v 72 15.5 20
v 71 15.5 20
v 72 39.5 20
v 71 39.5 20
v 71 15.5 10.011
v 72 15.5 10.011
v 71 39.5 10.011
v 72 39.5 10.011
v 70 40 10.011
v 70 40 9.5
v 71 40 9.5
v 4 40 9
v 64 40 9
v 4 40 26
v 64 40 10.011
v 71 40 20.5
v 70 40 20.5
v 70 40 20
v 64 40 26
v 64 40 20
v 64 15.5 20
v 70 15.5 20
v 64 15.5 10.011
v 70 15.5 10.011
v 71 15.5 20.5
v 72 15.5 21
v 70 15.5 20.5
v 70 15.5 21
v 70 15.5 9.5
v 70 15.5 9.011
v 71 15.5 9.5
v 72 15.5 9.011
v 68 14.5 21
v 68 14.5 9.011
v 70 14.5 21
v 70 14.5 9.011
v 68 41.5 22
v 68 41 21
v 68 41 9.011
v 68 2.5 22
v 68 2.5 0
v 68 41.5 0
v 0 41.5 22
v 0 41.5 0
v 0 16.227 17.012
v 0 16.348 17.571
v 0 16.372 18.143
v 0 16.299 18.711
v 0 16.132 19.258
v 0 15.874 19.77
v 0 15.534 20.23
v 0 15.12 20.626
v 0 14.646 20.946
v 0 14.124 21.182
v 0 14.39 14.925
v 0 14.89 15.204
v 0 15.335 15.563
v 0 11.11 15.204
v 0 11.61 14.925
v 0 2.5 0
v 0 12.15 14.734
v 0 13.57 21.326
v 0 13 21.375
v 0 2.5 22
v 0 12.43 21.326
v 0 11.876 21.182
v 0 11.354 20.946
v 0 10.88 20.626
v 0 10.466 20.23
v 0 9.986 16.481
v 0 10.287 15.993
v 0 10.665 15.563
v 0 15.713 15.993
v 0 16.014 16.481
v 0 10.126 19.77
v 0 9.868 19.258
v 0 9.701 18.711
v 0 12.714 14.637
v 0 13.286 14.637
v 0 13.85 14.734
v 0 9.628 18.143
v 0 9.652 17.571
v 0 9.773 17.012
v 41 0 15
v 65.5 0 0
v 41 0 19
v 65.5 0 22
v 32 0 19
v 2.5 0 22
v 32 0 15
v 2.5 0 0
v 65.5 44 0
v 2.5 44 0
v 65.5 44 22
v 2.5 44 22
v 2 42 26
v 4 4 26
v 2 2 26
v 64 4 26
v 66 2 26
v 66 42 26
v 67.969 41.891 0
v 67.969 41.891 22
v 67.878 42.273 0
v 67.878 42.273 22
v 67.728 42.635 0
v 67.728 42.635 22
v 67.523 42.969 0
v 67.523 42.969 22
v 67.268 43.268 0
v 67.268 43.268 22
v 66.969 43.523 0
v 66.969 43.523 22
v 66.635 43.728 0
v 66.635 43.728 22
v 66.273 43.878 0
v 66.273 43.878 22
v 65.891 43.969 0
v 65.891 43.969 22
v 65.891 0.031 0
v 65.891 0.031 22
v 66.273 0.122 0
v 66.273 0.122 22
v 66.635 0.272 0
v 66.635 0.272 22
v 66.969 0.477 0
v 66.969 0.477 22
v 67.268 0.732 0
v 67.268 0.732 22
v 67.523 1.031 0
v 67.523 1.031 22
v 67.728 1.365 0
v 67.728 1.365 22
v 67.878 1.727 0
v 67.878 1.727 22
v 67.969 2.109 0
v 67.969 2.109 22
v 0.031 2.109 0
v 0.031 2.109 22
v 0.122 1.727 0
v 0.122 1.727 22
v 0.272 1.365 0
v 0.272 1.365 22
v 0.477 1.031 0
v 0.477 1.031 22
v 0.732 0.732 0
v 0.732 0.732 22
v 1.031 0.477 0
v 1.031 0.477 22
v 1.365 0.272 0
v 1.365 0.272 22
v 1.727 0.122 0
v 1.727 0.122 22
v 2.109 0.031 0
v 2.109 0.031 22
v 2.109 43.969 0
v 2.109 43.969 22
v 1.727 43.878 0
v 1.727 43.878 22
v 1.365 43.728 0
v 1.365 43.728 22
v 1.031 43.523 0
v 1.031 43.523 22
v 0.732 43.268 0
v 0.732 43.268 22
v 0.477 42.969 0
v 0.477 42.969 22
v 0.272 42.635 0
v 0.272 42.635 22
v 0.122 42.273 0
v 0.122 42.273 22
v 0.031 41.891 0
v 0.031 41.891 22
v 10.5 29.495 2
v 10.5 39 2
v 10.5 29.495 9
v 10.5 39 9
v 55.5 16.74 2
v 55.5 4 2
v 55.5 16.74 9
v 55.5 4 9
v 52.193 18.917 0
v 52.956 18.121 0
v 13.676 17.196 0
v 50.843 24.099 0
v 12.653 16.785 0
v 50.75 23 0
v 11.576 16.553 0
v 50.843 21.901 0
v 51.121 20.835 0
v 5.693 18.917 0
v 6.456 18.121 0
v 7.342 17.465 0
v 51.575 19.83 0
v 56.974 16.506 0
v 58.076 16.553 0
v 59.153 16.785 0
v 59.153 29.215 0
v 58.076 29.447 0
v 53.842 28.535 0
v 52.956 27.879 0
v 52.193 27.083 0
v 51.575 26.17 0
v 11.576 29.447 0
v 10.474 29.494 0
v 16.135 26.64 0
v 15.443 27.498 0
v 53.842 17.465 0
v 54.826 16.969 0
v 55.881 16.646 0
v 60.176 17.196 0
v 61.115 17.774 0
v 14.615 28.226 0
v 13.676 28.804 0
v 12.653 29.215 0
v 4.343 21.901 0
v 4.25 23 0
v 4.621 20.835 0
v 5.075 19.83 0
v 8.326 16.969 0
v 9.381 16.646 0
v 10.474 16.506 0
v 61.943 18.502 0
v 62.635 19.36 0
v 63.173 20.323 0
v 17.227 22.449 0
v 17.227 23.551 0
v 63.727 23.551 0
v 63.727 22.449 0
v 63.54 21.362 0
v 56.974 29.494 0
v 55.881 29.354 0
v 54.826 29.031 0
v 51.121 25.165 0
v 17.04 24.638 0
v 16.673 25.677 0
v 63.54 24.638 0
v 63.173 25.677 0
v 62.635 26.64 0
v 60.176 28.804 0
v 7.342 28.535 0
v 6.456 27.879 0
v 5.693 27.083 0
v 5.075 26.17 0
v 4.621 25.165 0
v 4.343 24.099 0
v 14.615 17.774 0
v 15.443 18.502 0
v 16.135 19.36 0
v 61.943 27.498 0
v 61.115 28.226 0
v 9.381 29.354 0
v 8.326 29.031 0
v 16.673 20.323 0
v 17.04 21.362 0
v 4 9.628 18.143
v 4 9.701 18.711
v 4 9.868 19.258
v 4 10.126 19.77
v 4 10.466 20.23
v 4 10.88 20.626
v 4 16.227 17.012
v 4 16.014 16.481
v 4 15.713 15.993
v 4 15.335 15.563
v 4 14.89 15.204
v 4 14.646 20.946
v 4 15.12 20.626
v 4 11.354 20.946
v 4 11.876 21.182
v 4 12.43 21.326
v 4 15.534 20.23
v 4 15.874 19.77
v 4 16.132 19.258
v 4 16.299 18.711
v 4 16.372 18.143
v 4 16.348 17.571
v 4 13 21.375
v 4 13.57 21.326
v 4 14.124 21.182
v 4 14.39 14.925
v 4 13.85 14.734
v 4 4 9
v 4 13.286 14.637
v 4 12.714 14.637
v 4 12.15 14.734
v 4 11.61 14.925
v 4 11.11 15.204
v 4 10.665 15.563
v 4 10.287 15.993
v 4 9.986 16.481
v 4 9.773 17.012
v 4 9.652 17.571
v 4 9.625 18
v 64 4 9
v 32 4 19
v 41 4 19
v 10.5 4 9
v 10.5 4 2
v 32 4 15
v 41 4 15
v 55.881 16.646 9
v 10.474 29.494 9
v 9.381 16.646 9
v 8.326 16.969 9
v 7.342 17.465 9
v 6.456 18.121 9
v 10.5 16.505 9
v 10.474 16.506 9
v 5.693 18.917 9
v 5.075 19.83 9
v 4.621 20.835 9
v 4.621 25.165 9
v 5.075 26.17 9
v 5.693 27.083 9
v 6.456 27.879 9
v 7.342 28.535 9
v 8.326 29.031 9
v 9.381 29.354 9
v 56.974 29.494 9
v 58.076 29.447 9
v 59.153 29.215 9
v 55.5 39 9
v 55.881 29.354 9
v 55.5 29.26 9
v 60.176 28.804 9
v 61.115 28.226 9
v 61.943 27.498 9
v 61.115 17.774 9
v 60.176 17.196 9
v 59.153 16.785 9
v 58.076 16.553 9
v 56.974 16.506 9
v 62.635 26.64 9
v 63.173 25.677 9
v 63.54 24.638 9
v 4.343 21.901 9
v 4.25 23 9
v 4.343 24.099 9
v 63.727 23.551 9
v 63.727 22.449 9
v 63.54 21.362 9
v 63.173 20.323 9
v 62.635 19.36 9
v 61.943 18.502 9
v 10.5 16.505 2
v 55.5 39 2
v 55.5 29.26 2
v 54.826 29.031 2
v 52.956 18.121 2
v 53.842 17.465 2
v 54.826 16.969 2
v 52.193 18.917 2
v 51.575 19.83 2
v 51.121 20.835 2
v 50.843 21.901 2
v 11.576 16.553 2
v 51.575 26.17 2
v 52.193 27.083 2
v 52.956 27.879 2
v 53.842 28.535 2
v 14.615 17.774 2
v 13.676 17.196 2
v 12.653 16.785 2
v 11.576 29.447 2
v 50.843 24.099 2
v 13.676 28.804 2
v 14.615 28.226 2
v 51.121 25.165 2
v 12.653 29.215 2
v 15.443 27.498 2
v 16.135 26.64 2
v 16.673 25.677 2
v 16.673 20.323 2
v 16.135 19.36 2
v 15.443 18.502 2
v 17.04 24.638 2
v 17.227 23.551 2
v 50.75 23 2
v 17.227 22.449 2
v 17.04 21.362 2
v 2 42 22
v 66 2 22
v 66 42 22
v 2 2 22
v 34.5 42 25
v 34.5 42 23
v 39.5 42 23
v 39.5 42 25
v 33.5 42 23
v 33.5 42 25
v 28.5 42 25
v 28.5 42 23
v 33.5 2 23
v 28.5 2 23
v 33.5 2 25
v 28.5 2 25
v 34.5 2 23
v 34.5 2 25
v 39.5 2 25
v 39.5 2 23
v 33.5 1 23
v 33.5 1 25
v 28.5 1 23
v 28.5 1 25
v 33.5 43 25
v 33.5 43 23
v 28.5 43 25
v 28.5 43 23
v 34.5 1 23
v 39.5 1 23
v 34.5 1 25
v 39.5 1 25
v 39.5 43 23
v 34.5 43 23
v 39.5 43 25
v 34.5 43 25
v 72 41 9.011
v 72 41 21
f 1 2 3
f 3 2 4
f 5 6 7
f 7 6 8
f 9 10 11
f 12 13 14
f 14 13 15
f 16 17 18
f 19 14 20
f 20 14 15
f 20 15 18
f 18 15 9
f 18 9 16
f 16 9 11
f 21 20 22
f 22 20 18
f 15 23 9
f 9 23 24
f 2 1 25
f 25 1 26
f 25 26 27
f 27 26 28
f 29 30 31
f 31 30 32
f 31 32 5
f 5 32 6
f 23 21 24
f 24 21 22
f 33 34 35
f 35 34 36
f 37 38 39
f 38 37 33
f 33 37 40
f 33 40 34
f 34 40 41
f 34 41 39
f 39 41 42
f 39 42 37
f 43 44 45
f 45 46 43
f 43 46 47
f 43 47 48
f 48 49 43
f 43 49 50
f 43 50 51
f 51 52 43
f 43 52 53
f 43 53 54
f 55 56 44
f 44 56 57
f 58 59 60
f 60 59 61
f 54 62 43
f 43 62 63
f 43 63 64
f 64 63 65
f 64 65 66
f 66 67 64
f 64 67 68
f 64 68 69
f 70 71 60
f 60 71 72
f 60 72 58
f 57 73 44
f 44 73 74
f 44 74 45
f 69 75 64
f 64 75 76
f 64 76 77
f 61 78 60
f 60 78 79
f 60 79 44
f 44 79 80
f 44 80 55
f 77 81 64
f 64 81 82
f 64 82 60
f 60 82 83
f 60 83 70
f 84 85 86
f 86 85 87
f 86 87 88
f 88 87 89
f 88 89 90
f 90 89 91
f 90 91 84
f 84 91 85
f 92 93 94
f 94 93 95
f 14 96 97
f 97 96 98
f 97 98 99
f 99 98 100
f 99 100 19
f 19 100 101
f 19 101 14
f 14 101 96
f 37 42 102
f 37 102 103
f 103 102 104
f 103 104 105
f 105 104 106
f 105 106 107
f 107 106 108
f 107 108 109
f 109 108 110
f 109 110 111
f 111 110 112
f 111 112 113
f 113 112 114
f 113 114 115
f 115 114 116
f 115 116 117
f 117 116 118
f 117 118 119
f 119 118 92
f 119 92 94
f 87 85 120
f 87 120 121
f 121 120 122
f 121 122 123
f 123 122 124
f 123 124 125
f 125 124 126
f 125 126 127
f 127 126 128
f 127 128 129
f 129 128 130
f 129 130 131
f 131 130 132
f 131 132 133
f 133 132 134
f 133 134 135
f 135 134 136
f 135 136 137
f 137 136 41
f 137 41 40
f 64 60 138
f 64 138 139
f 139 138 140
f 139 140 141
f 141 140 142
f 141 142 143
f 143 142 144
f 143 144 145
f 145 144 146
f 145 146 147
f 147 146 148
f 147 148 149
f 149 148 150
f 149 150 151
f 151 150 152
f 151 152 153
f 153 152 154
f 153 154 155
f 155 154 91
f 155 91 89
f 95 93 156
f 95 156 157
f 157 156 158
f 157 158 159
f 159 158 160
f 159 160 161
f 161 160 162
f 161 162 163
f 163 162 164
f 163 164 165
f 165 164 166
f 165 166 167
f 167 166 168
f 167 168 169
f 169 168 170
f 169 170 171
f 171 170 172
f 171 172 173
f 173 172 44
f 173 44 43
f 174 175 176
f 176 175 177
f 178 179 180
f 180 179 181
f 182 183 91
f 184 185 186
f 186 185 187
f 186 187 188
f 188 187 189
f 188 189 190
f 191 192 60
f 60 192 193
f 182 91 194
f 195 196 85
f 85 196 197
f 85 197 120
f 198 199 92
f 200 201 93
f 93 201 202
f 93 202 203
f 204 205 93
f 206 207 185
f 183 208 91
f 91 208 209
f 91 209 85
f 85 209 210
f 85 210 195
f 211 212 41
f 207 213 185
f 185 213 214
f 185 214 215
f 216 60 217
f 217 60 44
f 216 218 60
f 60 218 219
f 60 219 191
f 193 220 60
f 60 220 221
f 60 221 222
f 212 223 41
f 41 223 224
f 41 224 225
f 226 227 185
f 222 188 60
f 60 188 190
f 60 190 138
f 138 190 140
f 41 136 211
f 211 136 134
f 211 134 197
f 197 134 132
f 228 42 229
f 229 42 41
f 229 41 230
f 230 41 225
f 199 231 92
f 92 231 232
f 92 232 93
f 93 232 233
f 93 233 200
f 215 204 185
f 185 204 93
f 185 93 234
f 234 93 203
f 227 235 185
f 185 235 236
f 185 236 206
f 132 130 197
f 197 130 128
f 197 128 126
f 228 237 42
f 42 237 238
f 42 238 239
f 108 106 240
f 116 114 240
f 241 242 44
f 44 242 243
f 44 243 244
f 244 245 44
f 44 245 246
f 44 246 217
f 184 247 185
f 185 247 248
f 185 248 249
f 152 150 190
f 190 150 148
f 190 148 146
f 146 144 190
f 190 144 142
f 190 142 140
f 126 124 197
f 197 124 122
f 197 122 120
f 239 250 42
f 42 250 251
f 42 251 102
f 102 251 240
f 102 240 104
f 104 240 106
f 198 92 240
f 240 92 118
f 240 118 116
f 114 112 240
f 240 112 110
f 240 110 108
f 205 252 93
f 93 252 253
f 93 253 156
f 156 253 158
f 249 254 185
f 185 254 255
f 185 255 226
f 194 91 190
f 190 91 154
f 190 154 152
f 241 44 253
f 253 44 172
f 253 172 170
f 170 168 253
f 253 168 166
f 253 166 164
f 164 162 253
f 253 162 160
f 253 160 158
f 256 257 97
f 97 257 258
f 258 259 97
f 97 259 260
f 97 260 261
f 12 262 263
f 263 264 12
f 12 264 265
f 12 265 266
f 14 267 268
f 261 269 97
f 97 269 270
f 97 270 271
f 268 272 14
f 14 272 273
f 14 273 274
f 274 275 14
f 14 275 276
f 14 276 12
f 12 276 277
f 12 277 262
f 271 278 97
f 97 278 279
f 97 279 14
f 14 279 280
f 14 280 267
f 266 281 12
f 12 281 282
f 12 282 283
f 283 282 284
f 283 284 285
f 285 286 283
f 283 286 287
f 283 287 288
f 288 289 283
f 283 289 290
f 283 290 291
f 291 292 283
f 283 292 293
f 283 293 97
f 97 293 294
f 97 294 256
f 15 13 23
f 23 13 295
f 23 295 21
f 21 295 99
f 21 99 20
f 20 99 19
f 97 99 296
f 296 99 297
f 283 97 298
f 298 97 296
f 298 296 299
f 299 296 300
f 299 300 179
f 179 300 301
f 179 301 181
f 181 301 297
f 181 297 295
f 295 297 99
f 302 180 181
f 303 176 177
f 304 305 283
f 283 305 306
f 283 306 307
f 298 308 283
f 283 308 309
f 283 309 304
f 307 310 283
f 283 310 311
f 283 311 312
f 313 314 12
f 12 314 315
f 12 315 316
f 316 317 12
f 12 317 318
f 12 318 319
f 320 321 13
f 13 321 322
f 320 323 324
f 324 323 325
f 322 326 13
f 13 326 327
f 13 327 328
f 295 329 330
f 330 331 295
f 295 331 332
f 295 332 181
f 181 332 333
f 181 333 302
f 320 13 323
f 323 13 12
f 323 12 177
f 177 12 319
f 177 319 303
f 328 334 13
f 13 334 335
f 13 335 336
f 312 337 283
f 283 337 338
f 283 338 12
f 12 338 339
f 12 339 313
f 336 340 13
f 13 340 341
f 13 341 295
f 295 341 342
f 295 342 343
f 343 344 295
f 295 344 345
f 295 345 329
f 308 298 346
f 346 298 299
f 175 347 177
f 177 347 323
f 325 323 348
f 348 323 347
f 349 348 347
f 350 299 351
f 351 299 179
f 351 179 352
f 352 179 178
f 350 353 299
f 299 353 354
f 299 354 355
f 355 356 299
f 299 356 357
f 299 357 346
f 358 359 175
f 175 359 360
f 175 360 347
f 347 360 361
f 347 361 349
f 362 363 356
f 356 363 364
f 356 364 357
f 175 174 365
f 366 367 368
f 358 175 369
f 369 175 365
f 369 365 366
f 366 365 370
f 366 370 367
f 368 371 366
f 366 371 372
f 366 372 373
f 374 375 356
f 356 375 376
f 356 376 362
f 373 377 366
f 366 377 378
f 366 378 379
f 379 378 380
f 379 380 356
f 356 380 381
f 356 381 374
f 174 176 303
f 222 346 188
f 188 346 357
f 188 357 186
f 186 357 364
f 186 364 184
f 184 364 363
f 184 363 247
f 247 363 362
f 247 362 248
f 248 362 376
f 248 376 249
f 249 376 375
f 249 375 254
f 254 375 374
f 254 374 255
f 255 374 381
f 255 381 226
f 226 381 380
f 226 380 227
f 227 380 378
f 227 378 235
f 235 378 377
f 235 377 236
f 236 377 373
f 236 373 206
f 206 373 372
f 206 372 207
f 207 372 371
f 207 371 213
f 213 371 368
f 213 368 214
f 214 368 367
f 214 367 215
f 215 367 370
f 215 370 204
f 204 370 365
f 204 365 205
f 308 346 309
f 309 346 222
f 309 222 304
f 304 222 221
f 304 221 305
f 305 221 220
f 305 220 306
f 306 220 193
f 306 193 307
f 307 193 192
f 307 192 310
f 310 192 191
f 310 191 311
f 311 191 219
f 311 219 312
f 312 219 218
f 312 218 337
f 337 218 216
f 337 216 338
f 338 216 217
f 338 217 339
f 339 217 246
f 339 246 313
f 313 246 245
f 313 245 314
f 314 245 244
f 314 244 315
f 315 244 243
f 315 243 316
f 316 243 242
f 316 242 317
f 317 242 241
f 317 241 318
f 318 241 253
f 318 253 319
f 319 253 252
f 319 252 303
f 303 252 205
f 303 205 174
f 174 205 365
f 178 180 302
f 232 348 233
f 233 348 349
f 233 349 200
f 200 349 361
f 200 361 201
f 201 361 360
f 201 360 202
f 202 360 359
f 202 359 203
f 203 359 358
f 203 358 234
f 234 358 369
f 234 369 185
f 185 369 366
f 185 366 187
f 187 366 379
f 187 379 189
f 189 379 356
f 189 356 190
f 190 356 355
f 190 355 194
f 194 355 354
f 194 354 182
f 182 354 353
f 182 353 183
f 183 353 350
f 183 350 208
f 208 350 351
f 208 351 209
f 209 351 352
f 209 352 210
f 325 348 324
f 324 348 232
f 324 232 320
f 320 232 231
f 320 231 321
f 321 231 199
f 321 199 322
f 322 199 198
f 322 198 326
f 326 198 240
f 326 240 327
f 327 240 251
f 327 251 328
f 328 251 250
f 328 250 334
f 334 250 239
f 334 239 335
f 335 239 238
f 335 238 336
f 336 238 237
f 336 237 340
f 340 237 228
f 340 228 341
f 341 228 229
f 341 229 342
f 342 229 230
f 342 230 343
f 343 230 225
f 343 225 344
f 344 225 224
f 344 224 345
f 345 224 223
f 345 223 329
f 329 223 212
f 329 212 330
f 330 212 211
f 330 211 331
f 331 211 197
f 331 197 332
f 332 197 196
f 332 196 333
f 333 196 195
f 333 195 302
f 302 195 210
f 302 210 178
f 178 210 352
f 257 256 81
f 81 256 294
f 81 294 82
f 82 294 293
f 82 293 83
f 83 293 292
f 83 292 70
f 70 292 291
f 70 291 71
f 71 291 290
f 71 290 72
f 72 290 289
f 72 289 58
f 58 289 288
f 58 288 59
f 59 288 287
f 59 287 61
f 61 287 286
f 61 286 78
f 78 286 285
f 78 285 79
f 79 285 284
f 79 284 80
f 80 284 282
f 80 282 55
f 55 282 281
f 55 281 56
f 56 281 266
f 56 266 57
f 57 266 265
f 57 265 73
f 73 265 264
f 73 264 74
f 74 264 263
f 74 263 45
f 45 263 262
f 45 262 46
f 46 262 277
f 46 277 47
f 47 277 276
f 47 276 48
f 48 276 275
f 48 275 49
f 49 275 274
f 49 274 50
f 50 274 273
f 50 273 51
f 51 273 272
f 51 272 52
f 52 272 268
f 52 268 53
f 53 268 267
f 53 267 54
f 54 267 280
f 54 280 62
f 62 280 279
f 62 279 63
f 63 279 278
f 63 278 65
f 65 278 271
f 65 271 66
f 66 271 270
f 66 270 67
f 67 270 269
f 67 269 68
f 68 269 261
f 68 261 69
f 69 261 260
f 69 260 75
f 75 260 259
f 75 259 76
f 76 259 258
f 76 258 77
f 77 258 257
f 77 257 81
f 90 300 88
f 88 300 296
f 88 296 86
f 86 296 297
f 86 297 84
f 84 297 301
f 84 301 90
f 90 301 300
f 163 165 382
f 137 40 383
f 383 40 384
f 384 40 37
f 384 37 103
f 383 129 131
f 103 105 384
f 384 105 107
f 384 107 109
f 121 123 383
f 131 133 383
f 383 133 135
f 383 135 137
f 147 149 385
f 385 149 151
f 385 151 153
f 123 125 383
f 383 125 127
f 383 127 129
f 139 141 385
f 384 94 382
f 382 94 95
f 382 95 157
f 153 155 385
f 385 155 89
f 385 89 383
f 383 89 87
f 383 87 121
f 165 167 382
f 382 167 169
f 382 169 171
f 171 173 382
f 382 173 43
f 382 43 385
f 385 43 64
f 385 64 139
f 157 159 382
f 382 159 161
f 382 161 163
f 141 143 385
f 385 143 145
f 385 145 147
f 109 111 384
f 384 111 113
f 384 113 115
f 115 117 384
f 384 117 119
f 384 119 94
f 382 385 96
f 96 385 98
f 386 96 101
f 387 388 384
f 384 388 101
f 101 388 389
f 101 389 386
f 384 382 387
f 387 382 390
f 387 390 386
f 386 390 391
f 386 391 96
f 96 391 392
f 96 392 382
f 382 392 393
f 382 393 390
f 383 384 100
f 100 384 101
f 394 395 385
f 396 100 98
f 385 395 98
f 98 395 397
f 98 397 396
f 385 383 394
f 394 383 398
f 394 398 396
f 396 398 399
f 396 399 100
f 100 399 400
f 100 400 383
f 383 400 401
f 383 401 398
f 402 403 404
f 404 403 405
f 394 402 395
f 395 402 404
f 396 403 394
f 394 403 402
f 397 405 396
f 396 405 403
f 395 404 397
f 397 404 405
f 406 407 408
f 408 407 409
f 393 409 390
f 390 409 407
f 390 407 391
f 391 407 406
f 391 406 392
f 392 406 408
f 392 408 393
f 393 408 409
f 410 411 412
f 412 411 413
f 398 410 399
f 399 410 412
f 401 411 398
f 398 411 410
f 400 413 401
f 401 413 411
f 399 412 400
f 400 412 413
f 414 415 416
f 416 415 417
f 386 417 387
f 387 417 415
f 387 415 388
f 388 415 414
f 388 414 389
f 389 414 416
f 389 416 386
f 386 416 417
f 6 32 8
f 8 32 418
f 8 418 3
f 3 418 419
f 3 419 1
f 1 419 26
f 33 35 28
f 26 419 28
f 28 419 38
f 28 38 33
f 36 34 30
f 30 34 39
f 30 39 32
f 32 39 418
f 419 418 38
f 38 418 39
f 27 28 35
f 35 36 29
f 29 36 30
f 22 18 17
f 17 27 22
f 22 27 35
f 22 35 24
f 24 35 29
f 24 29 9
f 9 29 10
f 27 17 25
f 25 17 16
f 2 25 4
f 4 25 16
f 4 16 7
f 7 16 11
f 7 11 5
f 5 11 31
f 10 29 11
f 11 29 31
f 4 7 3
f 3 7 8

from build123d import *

# Parameters (mm, degrees)
SKETCH1_W                   = 68
SKETCH1_H                   = 44
MIAN_BOSS_EXTRUDE_DEPTH     = 26
SKETCH2_W                   = 60
SKETCH2_H                   = 36
MAIN_CUT_DEPTH              = 17
SKETCH4_W                   = 45
SKETCH4_H                   = 35
BATTERY_CUT_DEPTH           = 7
SKETCH5_R                   = 6.5
ELCTRODE_CUT_DEPTH          = 12
SKETCH6_W                   = 9.989337028
SKETCH6_H                   = 24.5
USB_C_CUT_DEPTH             = 7
SKETCH7_R                   = 3.375
BUTTON_CUT_DEPTH            = 7
SKETCH8_W                   = 9
SKETCH8_H                   = 4
SWITCH_CUT_DEPTH            = 7
OUTSIDE_FILLET_R            = 2.5
SKETCH10_OUTSIDE_W          = 87.012
SKETCH10_OUTSIDE_H          = 63.012
SKETCH10_OUTSIDE_W_2        = 64
SKETCH10_OUTSIDE_H_2        = 40
OUTER_LID_EXTRUDE_DEPTH     = 4
LID_SNAP_EXTRUDE_DEPTH      = 1
LID_SNAP_EXTRUDE_DEPTH_BACK = 41
SKETCH11_W                  = 5
SKETCH11_H                  = 2
SKETCH13_W                  = 11
SKETCH13_H                  = 36
INNER_LID_EXTRUDE_DEPTH     = 3
SKETCH14_W                  = 11.989337028
SKETCH14_H                  = 26.5
SKETCH14_W_2                = 9.989337028
SKETCH14_H_2                = 24.5
USB_COVER_EXTRUDE_DEPTH     = 4
SKETCH15_W                  = 11.989337028
SKETCH15_H                  = 1
USB_CUT_EXTRUDE_DEPTH       = 2
USB_LIP_CUT_DEPTH           = 10.5
USB_LIP_CUT_DEPTH_BACK      = 0.5
SKETCH18_W                  = 1
SKETCH18_H                  = 24.5
SKETCH20_W                  = 1
SKETCH20_H                  = 9.989337028
USB_LIP_BOSS_DEPTH          = 0.5


with BuildPart() as part:
    # Sketch1 → Mian Boss Extrude (new body)
    with BuildSketch(Plane.XY):
        with Locations((34, 22)):
            Rectangle(SKETCH1_W, SKETCH1_H)
    extrude(amount=MIAN_BOSS_EXTRUDE_DEPTH)

    # Sketch2 → Main cut (cut)
    with BuildSketch(Plane.XY.offset(26)):
        with Locations((34, 22)):
            Rectangle(SKETCH2_W, SKETCH2_H)
    extrude(amount=-MAIN_CUT_DEPTH, mode=Mode.SUBTRACT)

    # Sketch4 → Battery Cut (cut)
    with BuildSketch(Plane.XY.offset(9)):
        with Locations((33, 21.5)):
            Rectangle(SKETCH4_W, SKETCH4_H)
    extrude(amount=-BATTERY_CUT_DEPTH, mode=Mode.SUBTRACT)

    # Sketch5 → Elctrode Cut (cut)
    with BuildSketch(Plane(origin=(0, 0, 0), x_dir=(-1, 0, 0), z_dir=(0, 0, -1))):
        with Locations((-57.25, 23)):
            Circle(SKETCH5_R)
        with Locations((-10.75, 23)):
            Circle(SKETCH5_R)
    extrude(amount=-ELCTRODE_CUT_DEPTH, mode=Mode.SUBTRACT)

    # Sketch6 → USB-c Cut (cut)
    with BuildSketch(Plane(origin=(68, 0, 0), x_dir=(0, 0, -1), z_dir=(1, 0, 0))):
        with Locations((-15.005331486, 27.75)):
            Rectangle(SKETCH6_W, SKETCH6_H)
    extrude(amount=-USB_C_CUT_DEPTH, mode=Mode.SUBTRACT)

    # Sketch7 → Button Cut (cut)
    with BuildSketch(Plane.ZY):
        with Locations((18, 13)):
            Circle(SKETCH7_R)
    extrude(amount=-BUTTON_CUT_DEPTH, mode=Mode.SUBTRACT)

    # Sketch8 → Switch Cut (cut)
    with BuildSketch(Plane.XZ):
        with Locations((36.5, 17)):
            Rectangle(SKETCH8_W, SKETCH8_H)
    extrude(amount=-SWITCH_CUT_DEPTH, mode=Mode.SUBTRACT)

    # Outside Fillet
    outside_fillet_edges = [part.edges().sort_by_distance(p)[0] for p in [
        (0, 44, 13),
        (68, 44, 13),
        (68, 0, 13),
        (0, 0, 13),
    ]]
    fillet(outside_fillet_edges, radius=OUTSIDE_FILLET_R)

    # Sketch10 outside → Outer lid Extrude (cut)
    with BuildSketch(Plane.XY.offset(26)):
        with Locations((34, 22)):
            Rectangle(SKETCH10_OUTSIDE_W, SKETCH10_OUTSIDE_H)
        with Locations((34, 22)):
            Rectangle(SKETCH10_OUTSIDE_W_2, SKETCH10_OUTSIDE_H_2, mode=Mode.SUBTRACT)
    extrude(amount=-OUTER_LID_EXTRUDE_DEPTH, mode=Mode.SUBTRACT)

    # Sketch11 → Lid Snap-Extrude (add, two sides: drawn at the far end of the back side and taken through both)
    with BuildSketch(Plane.XZ.offset(-2).offset(-LID_SNAP_EXTRUDE_DEPTH_BACK)):
        with Locations((31, 24)):
            Rectangle(SKETCH11_W, SKETCH11_H)
        with Locations((37, 24)):
            Rectangle(SKETCH11_W, SKETCH11_H)
    extrude(amount=LID_SNAP_EXTRUDE_DEPTH + LID_SNAP_EXTRUDE_DEPTH_BACK)

    # Sketch13 → Inner Lid-Extrude (cut)
    with BuildSketch(Plane.XY.offset(25)):
        with Locations((34, 22)):
            Rectangle(SKETCH13_W, SKETCH13_H)
    extrude(amount=-INNER_LID_EXTRUDE_DEPTH, mode=Mode.SUBTRACT)

    # Sketch14 → USB Cover-Extrude (add)
    with BuildSketch(Plane(origin=(68, 0, 0), x_dir=(0, 0, -1), z_dir=(1, 0, 0))):
        with Locations((-15.005331486, 27.75)):
            Rectangle(SKETCH14_W, SKETCH14_H)
        with Locations((-15.005331486, 27.75)):
            Rectangle(SKETCH14_W_2, SKETCH14_H_2, mode=Mode.SUBTRACT)
    extrude(amount=USB_COVER_EXTRUDE_DEPTH)

    # Sketch15 → USB Cut-Extrude (cut)
    with BuildSketch(Plane(origin=(72, 0, 0), x_dir=(0, 0, -1), z_dir=(1, 0, 0))):
        with Locations((-15.005331486, 15)):
            Rectangle(SKETCH15_W, SKETCH15_H)
    extrude(amount=-USB_CUT_EXTRUDE_DEPTH, mode=Mode.SUBTRACT)

    # Sketch18 → USB Lip Cut (cut, two sides: drawn at the far end of the back side and taken through both)
    with BuildSketch(Plane(origin=(0, 0, 20), x_dir=(-1, 0, 0), z_dir=(0, 0, -1)).offset(-USB_LIP_CUT_DEPTH_BACK)):
        with Locations((-70.5, 27.75)):
            Rectangle(SKETCH18_W, SKETCH18_H)
    extrude(amount=USB_LIP_CUT_DEPTH + USB_LIP_CUT_DEPTH_BACK, mode=Mode.SUBTRACT)

    # Sketch20 → USB Lip Boss (add)
    with BuildSketch(Plane.XZ.offset(-40)):
        with Locations((71.5, 15.005331486)):
            Rectangle(SKETCH20_W, SKETCH20_H)
    extrude(amount=USB_LIP_BOSS_DEPTH)


solid = part.part
